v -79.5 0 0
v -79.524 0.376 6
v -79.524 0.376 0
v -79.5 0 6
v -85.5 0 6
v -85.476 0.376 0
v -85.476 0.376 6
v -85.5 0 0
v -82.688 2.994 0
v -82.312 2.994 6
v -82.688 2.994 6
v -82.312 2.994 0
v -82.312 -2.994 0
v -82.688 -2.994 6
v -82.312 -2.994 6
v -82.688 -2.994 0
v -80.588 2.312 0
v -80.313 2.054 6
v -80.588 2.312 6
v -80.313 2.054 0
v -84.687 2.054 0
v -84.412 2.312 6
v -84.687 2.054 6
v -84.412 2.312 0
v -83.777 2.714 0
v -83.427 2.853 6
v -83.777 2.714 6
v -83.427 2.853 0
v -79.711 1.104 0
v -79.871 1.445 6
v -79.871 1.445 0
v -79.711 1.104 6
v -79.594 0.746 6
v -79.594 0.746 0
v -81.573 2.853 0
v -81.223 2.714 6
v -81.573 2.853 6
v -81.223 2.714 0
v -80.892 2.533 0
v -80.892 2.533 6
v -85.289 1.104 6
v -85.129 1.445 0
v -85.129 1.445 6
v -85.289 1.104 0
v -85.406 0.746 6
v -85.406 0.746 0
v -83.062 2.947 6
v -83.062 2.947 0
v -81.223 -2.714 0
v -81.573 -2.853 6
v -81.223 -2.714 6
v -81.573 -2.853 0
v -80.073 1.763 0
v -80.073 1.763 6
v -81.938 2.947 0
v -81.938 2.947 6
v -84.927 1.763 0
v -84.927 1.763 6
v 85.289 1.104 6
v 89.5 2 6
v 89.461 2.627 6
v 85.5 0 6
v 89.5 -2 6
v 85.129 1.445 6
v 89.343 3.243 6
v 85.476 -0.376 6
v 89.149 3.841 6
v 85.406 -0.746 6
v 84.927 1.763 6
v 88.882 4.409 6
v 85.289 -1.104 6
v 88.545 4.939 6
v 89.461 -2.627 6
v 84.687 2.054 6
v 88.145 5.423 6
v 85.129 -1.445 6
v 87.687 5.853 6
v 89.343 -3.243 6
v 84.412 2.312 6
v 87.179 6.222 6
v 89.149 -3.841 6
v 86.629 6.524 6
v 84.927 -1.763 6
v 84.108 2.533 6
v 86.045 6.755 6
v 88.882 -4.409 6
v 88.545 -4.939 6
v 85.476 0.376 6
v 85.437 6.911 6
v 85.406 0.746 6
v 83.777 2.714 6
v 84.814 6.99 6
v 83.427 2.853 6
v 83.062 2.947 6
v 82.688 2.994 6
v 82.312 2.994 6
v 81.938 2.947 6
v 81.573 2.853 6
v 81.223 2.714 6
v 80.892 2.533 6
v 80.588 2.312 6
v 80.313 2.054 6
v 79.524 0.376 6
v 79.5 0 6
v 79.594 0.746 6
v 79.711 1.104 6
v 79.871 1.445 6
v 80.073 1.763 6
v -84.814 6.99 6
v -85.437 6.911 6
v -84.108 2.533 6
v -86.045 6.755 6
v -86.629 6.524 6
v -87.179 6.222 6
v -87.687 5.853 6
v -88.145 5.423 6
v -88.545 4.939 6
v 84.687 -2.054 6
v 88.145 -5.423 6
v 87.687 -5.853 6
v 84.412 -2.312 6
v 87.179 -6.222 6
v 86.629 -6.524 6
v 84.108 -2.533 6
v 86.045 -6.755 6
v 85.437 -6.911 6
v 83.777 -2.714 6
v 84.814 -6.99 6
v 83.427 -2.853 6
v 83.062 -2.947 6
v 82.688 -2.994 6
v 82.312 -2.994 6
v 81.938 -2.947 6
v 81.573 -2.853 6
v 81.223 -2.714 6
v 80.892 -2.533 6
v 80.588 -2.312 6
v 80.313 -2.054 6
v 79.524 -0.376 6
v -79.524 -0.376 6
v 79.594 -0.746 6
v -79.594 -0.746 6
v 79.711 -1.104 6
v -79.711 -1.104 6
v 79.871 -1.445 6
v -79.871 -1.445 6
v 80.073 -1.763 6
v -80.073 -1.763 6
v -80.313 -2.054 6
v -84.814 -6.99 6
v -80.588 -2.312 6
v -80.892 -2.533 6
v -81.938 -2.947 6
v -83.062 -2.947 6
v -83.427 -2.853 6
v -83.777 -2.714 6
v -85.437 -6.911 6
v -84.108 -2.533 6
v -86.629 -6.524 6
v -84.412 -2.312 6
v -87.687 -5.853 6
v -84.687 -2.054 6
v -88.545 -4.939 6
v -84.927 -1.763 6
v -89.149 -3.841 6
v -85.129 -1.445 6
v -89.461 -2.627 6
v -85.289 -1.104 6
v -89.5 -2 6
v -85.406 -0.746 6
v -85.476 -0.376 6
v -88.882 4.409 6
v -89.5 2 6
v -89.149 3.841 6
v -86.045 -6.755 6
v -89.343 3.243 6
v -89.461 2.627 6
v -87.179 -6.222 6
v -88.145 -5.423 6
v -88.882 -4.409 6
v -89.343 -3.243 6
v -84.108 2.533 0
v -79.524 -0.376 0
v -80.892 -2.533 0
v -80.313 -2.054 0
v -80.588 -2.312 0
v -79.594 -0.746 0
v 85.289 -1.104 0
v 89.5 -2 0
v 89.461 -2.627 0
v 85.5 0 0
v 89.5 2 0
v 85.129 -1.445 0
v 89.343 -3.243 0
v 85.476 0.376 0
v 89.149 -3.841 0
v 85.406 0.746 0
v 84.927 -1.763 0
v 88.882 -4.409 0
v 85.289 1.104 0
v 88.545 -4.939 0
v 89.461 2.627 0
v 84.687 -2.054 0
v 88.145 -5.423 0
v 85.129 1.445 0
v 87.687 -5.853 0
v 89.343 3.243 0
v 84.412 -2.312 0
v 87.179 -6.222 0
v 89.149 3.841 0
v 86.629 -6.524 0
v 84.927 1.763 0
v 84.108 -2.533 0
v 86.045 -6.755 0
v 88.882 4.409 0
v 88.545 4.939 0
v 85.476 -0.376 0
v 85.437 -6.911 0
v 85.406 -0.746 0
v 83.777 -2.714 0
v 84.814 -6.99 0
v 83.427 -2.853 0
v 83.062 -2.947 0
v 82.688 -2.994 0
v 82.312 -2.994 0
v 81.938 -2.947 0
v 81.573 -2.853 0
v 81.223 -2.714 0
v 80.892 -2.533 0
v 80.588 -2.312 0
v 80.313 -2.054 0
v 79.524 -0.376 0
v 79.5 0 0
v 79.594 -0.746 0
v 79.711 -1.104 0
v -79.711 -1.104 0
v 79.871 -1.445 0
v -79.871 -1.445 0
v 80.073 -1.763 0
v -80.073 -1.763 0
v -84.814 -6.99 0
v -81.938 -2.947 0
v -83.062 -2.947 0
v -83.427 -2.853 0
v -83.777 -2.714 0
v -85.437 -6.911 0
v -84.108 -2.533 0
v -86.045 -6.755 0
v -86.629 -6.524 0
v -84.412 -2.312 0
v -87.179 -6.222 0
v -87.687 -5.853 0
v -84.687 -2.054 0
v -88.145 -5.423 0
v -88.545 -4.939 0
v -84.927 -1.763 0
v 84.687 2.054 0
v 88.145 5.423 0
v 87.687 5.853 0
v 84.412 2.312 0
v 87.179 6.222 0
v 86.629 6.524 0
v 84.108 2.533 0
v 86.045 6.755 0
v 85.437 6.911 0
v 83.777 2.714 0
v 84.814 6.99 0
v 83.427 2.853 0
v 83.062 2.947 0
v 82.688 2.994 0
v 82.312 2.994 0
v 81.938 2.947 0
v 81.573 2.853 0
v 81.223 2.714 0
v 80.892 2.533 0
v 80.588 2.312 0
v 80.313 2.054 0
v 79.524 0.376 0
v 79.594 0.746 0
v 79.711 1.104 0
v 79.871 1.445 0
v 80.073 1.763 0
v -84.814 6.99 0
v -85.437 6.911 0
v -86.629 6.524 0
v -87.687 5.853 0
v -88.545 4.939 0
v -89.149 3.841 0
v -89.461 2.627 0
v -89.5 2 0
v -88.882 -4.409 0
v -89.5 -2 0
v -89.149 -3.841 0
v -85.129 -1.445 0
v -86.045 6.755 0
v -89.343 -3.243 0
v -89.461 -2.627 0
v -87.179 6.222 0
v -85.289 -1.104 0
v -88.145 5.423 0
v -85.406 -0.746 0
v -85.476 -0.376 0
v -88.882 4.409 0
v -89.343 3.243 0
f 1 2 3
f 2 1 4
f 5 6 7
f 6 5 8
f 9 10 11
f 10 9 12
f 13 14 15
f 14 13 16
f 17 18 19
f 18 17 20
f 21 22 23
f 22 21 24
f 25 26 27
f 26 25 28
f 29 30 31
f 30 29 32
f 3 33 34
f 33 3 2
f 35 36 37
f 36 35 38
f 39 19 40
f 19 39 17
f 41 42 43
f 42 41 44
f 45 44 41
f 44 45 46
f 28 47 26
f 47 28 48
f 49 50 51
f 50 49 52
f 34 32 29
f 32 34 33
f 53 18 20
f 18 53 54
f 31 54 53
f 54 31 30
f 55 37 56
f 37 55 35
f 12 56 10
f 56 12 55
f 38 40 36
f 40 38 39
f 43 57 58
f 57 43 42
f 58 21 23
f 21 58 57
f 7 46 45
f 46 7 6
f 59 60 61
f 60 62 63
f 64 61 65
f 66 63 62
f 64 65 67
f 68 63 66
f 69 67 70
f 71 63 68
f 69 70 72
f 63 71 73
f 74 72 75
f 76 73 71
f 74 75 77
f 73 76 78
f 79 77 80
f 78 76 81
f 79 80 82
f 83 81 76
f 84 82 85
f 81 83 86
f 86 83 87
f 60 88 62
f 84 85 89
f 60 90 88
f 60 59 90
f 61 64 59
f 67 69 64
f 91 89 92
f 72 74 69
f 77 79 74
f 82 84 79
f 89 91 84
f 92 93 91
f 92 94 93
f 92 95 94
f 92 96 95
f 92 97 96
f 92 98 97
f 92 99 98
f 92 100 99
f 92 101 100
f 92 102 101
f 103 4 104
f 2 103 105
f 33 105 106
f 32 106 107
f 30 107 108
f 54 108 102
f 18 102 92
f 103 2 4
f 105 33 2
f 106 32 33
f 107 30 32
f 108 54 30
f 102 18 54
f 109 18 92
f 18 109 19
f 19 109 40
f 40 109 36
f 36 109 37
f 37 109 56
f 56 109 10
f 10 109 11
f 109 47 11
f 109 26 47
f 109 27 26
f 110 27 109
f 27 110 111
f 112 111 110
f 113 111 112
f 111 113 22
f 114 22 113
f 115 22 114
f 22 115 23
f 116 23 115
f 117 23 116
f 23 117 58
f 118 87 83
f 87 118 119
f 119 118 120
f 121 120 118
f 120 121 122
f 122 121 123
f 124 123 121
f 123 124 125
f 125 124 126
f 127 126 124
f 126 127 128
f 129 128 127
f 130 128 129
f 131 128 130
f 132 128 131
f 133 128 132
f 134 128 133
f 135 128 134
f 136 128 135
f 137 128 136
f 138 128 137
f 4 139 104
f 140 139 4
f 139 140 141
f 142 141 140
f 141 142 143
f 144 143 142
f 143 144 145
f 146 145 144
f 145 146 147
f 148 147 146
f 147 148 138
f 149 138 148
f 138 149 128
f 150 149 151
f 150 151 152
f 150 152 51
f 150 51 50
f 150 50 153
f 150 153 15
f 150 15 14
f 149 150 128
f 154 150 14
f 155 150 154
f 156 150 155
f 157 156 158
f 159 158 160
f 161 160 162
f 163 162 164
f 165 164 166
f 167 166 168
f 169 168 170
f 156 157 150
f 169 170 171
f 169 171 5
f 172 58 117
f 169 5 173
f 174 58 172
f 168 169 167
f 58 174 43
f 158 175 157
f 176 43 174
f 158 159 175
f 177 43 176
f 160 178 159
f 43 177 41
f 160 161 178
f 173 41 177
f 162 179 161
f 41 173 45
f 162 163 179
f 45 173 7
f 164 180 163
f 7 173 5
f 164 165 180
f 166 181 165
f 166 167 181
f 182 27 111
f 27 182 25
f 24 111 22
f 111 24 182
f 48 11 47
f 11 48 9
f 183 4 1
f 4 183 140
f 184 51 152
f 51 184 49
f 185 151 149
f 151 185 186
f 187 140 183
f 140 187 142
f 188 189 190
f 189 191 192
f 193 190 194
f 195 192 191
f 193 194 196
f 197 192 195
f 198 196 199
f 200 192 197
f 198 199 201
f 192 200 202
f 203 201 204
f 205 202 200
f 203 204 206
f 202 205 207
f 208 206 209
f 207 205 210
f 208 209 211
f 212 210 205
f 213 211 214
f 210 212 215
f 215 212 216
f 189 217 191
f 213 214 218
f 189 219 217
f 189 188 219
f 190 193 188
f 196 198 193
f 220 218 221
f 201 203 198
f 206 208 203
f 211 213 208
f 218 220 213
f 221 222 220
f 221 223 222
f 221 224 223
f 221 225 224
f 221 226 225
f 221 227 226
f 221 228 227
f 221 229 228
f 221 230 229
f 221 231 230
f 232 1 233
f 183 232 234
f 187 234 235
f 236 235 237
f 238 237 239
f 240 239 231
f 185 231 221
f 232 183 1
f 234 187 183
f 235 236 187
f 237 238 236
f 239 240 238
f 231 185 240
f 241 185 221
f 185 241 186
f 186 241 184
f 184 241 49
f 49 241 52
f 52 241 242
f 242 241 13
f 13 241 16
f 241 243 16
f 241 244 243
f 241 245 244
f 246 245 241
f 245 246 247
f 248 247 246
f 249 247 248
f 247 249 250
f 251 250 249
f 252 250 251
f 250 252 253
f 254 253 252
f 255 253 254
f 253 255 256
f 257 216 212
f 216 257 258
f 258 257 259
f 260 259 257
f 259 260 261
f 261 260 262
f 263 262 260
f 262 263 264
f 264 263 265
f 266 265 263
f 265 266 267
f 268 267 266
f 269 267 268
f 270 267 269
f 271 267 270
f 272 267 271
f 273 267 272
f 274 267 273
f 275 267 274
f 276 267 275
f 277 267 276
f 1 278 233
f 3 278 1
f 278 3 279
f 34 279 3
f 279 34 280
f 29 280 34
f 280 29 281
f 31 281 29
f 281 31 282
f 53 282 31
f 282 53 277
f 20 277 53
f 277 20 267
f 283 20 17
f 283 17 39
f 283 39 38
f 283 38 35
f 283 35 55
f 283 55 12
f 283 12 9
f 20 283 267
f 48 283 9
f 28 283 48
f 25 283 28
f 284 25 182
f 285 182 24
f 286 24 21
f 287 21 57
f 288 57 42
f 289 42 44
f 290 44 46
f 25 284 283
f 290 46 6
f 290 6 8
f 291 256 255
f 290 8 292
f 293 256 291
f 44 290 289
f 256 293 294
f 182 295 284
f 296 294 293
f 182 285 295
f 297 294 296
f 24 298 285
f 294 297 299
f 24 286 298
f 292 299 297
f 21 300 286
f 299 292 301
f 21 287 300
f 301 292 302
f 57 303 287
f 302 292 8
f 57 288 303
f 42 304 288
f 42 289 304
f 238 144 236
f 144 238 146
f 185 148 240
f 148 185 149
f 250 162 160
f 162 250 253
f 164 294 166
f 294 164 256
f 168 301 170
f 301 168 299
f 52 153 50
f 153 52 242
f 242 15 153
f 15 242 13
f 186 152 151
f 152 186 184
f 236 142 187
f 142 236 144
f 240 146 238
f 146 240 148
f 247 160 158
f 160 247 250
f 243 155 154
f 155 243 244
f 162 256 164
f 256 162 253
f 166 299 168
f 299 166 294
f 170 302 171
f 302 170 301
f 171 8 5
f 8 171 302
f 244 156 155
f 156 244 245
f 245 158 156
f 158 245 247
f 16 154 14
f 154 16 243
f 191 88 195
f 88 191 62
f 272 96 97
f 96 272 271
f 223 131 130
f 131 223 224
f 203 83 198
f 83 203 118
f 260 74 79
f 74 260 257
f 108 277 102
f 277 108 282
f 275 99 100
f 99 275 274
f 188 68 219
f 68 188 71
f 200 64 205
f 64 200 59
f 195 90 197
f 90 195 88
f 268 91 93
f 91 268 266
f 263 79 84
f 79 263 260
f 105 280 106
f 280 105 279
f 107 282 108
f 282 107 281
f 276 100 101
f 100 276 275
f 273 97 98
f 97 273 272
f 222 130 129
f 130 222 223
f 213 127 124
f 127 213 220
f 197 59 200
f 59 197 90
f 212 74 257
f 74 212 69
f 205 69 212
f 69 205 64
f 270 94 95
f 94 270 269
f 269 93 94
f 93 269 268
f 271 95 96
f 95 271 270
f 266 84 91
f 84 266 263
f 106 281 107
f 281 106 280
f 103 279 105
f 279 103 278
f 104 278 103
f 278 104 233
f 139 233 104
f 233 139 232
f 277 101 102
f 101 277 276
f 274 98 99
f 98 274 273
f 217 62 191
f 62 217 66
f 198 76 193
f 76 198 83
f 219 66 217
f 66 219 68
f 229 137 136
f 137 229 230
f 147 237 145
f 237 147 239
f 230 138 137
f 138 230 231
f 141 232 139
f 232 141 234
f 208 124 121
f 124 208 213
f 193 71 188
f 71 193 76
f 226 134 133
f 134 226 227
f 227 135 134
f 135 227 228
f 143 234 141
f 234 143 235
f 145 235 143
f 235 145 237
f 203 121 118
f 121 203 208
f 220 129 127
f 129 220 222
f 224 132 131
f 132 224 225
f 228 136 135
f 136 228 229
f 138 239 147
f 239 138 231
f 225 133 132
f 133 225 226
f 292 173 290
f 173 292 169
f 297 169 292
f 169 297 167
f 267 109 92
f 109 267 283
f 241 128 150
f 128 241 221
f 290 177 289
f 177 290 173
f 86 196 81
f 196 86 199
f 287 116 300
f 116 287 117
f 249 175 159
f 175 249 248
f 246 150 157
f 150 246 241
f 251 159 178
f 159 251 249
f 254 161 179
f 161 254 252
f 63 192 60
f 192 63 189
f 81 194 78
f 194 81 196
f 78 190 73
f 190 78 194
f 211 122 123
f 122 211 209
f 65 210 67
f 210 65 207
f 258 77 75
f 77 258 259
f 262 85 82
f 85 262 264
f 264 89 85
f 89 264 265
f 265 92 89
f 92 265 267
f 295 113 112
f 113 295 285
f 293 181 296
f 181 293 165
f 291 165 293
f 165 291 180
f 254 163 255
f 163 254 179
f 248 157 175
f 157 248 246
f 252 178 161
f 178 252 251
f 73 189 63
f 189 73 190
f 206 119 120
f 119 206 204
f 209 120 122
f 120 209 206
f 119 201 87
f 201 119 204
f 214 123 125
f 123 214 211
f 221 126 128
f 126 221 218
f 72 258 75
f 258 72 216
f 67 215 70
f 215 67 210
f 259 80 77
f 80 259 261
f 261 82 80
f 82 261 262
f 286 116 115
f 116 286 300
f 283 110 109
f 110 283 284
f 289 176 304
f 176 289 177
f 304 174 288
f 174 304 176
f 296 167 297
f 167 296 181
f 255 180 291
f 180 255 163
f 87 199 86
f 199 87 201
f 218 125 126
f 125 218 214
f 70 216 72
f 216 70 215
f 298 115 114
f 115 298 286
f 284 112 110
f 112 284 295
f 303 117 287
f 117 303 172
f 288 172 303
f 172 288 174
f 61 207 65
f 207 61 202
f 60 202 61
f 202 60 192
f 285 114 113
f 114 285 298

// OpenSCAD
$fn = 50;


difference() {
	union() {
		hull() {
			translate(v = [-84.5000000000, 2.0000000000, 0]) {
				cylinder(h = 6, r = 5);
			}
			translate(v = [84.5000000000, 2.0000000000, 0]) {
				cylinder(h = 6, r = 5);
			}
			translate(v = [-84.5000000000, -2.0000000000, 0]) {
				cylinder(h = 6, r = 5);
			}
			translate(v = [84.5000000000, -2.0000000000, 0]) {
				cylinder(h = 6, r = 5);
			}
		}
	}
	union() {
		translate(v = [-82.5000000000, 0.0000000000, -100.0000000000]) {
			cylinder(h = 200, r = 3.0000000000);
		}
		translate(v = [-82.5000000000, 0.0000000000, -100.0000000000]) {
			cylinder(h = 200, r = 3.0000000000);
		}
		translate(v = [82.5000000000, 0.0000000000, -100.0000000000]) {
			cylinder(h = 200, r = 3.0000000000);
		}
		translate(v = [82.5000000000, 0.0000000000, -100.0000000000]) {
			cylinder(h = 200, r = 3.0000000000);
		}
	}
}
